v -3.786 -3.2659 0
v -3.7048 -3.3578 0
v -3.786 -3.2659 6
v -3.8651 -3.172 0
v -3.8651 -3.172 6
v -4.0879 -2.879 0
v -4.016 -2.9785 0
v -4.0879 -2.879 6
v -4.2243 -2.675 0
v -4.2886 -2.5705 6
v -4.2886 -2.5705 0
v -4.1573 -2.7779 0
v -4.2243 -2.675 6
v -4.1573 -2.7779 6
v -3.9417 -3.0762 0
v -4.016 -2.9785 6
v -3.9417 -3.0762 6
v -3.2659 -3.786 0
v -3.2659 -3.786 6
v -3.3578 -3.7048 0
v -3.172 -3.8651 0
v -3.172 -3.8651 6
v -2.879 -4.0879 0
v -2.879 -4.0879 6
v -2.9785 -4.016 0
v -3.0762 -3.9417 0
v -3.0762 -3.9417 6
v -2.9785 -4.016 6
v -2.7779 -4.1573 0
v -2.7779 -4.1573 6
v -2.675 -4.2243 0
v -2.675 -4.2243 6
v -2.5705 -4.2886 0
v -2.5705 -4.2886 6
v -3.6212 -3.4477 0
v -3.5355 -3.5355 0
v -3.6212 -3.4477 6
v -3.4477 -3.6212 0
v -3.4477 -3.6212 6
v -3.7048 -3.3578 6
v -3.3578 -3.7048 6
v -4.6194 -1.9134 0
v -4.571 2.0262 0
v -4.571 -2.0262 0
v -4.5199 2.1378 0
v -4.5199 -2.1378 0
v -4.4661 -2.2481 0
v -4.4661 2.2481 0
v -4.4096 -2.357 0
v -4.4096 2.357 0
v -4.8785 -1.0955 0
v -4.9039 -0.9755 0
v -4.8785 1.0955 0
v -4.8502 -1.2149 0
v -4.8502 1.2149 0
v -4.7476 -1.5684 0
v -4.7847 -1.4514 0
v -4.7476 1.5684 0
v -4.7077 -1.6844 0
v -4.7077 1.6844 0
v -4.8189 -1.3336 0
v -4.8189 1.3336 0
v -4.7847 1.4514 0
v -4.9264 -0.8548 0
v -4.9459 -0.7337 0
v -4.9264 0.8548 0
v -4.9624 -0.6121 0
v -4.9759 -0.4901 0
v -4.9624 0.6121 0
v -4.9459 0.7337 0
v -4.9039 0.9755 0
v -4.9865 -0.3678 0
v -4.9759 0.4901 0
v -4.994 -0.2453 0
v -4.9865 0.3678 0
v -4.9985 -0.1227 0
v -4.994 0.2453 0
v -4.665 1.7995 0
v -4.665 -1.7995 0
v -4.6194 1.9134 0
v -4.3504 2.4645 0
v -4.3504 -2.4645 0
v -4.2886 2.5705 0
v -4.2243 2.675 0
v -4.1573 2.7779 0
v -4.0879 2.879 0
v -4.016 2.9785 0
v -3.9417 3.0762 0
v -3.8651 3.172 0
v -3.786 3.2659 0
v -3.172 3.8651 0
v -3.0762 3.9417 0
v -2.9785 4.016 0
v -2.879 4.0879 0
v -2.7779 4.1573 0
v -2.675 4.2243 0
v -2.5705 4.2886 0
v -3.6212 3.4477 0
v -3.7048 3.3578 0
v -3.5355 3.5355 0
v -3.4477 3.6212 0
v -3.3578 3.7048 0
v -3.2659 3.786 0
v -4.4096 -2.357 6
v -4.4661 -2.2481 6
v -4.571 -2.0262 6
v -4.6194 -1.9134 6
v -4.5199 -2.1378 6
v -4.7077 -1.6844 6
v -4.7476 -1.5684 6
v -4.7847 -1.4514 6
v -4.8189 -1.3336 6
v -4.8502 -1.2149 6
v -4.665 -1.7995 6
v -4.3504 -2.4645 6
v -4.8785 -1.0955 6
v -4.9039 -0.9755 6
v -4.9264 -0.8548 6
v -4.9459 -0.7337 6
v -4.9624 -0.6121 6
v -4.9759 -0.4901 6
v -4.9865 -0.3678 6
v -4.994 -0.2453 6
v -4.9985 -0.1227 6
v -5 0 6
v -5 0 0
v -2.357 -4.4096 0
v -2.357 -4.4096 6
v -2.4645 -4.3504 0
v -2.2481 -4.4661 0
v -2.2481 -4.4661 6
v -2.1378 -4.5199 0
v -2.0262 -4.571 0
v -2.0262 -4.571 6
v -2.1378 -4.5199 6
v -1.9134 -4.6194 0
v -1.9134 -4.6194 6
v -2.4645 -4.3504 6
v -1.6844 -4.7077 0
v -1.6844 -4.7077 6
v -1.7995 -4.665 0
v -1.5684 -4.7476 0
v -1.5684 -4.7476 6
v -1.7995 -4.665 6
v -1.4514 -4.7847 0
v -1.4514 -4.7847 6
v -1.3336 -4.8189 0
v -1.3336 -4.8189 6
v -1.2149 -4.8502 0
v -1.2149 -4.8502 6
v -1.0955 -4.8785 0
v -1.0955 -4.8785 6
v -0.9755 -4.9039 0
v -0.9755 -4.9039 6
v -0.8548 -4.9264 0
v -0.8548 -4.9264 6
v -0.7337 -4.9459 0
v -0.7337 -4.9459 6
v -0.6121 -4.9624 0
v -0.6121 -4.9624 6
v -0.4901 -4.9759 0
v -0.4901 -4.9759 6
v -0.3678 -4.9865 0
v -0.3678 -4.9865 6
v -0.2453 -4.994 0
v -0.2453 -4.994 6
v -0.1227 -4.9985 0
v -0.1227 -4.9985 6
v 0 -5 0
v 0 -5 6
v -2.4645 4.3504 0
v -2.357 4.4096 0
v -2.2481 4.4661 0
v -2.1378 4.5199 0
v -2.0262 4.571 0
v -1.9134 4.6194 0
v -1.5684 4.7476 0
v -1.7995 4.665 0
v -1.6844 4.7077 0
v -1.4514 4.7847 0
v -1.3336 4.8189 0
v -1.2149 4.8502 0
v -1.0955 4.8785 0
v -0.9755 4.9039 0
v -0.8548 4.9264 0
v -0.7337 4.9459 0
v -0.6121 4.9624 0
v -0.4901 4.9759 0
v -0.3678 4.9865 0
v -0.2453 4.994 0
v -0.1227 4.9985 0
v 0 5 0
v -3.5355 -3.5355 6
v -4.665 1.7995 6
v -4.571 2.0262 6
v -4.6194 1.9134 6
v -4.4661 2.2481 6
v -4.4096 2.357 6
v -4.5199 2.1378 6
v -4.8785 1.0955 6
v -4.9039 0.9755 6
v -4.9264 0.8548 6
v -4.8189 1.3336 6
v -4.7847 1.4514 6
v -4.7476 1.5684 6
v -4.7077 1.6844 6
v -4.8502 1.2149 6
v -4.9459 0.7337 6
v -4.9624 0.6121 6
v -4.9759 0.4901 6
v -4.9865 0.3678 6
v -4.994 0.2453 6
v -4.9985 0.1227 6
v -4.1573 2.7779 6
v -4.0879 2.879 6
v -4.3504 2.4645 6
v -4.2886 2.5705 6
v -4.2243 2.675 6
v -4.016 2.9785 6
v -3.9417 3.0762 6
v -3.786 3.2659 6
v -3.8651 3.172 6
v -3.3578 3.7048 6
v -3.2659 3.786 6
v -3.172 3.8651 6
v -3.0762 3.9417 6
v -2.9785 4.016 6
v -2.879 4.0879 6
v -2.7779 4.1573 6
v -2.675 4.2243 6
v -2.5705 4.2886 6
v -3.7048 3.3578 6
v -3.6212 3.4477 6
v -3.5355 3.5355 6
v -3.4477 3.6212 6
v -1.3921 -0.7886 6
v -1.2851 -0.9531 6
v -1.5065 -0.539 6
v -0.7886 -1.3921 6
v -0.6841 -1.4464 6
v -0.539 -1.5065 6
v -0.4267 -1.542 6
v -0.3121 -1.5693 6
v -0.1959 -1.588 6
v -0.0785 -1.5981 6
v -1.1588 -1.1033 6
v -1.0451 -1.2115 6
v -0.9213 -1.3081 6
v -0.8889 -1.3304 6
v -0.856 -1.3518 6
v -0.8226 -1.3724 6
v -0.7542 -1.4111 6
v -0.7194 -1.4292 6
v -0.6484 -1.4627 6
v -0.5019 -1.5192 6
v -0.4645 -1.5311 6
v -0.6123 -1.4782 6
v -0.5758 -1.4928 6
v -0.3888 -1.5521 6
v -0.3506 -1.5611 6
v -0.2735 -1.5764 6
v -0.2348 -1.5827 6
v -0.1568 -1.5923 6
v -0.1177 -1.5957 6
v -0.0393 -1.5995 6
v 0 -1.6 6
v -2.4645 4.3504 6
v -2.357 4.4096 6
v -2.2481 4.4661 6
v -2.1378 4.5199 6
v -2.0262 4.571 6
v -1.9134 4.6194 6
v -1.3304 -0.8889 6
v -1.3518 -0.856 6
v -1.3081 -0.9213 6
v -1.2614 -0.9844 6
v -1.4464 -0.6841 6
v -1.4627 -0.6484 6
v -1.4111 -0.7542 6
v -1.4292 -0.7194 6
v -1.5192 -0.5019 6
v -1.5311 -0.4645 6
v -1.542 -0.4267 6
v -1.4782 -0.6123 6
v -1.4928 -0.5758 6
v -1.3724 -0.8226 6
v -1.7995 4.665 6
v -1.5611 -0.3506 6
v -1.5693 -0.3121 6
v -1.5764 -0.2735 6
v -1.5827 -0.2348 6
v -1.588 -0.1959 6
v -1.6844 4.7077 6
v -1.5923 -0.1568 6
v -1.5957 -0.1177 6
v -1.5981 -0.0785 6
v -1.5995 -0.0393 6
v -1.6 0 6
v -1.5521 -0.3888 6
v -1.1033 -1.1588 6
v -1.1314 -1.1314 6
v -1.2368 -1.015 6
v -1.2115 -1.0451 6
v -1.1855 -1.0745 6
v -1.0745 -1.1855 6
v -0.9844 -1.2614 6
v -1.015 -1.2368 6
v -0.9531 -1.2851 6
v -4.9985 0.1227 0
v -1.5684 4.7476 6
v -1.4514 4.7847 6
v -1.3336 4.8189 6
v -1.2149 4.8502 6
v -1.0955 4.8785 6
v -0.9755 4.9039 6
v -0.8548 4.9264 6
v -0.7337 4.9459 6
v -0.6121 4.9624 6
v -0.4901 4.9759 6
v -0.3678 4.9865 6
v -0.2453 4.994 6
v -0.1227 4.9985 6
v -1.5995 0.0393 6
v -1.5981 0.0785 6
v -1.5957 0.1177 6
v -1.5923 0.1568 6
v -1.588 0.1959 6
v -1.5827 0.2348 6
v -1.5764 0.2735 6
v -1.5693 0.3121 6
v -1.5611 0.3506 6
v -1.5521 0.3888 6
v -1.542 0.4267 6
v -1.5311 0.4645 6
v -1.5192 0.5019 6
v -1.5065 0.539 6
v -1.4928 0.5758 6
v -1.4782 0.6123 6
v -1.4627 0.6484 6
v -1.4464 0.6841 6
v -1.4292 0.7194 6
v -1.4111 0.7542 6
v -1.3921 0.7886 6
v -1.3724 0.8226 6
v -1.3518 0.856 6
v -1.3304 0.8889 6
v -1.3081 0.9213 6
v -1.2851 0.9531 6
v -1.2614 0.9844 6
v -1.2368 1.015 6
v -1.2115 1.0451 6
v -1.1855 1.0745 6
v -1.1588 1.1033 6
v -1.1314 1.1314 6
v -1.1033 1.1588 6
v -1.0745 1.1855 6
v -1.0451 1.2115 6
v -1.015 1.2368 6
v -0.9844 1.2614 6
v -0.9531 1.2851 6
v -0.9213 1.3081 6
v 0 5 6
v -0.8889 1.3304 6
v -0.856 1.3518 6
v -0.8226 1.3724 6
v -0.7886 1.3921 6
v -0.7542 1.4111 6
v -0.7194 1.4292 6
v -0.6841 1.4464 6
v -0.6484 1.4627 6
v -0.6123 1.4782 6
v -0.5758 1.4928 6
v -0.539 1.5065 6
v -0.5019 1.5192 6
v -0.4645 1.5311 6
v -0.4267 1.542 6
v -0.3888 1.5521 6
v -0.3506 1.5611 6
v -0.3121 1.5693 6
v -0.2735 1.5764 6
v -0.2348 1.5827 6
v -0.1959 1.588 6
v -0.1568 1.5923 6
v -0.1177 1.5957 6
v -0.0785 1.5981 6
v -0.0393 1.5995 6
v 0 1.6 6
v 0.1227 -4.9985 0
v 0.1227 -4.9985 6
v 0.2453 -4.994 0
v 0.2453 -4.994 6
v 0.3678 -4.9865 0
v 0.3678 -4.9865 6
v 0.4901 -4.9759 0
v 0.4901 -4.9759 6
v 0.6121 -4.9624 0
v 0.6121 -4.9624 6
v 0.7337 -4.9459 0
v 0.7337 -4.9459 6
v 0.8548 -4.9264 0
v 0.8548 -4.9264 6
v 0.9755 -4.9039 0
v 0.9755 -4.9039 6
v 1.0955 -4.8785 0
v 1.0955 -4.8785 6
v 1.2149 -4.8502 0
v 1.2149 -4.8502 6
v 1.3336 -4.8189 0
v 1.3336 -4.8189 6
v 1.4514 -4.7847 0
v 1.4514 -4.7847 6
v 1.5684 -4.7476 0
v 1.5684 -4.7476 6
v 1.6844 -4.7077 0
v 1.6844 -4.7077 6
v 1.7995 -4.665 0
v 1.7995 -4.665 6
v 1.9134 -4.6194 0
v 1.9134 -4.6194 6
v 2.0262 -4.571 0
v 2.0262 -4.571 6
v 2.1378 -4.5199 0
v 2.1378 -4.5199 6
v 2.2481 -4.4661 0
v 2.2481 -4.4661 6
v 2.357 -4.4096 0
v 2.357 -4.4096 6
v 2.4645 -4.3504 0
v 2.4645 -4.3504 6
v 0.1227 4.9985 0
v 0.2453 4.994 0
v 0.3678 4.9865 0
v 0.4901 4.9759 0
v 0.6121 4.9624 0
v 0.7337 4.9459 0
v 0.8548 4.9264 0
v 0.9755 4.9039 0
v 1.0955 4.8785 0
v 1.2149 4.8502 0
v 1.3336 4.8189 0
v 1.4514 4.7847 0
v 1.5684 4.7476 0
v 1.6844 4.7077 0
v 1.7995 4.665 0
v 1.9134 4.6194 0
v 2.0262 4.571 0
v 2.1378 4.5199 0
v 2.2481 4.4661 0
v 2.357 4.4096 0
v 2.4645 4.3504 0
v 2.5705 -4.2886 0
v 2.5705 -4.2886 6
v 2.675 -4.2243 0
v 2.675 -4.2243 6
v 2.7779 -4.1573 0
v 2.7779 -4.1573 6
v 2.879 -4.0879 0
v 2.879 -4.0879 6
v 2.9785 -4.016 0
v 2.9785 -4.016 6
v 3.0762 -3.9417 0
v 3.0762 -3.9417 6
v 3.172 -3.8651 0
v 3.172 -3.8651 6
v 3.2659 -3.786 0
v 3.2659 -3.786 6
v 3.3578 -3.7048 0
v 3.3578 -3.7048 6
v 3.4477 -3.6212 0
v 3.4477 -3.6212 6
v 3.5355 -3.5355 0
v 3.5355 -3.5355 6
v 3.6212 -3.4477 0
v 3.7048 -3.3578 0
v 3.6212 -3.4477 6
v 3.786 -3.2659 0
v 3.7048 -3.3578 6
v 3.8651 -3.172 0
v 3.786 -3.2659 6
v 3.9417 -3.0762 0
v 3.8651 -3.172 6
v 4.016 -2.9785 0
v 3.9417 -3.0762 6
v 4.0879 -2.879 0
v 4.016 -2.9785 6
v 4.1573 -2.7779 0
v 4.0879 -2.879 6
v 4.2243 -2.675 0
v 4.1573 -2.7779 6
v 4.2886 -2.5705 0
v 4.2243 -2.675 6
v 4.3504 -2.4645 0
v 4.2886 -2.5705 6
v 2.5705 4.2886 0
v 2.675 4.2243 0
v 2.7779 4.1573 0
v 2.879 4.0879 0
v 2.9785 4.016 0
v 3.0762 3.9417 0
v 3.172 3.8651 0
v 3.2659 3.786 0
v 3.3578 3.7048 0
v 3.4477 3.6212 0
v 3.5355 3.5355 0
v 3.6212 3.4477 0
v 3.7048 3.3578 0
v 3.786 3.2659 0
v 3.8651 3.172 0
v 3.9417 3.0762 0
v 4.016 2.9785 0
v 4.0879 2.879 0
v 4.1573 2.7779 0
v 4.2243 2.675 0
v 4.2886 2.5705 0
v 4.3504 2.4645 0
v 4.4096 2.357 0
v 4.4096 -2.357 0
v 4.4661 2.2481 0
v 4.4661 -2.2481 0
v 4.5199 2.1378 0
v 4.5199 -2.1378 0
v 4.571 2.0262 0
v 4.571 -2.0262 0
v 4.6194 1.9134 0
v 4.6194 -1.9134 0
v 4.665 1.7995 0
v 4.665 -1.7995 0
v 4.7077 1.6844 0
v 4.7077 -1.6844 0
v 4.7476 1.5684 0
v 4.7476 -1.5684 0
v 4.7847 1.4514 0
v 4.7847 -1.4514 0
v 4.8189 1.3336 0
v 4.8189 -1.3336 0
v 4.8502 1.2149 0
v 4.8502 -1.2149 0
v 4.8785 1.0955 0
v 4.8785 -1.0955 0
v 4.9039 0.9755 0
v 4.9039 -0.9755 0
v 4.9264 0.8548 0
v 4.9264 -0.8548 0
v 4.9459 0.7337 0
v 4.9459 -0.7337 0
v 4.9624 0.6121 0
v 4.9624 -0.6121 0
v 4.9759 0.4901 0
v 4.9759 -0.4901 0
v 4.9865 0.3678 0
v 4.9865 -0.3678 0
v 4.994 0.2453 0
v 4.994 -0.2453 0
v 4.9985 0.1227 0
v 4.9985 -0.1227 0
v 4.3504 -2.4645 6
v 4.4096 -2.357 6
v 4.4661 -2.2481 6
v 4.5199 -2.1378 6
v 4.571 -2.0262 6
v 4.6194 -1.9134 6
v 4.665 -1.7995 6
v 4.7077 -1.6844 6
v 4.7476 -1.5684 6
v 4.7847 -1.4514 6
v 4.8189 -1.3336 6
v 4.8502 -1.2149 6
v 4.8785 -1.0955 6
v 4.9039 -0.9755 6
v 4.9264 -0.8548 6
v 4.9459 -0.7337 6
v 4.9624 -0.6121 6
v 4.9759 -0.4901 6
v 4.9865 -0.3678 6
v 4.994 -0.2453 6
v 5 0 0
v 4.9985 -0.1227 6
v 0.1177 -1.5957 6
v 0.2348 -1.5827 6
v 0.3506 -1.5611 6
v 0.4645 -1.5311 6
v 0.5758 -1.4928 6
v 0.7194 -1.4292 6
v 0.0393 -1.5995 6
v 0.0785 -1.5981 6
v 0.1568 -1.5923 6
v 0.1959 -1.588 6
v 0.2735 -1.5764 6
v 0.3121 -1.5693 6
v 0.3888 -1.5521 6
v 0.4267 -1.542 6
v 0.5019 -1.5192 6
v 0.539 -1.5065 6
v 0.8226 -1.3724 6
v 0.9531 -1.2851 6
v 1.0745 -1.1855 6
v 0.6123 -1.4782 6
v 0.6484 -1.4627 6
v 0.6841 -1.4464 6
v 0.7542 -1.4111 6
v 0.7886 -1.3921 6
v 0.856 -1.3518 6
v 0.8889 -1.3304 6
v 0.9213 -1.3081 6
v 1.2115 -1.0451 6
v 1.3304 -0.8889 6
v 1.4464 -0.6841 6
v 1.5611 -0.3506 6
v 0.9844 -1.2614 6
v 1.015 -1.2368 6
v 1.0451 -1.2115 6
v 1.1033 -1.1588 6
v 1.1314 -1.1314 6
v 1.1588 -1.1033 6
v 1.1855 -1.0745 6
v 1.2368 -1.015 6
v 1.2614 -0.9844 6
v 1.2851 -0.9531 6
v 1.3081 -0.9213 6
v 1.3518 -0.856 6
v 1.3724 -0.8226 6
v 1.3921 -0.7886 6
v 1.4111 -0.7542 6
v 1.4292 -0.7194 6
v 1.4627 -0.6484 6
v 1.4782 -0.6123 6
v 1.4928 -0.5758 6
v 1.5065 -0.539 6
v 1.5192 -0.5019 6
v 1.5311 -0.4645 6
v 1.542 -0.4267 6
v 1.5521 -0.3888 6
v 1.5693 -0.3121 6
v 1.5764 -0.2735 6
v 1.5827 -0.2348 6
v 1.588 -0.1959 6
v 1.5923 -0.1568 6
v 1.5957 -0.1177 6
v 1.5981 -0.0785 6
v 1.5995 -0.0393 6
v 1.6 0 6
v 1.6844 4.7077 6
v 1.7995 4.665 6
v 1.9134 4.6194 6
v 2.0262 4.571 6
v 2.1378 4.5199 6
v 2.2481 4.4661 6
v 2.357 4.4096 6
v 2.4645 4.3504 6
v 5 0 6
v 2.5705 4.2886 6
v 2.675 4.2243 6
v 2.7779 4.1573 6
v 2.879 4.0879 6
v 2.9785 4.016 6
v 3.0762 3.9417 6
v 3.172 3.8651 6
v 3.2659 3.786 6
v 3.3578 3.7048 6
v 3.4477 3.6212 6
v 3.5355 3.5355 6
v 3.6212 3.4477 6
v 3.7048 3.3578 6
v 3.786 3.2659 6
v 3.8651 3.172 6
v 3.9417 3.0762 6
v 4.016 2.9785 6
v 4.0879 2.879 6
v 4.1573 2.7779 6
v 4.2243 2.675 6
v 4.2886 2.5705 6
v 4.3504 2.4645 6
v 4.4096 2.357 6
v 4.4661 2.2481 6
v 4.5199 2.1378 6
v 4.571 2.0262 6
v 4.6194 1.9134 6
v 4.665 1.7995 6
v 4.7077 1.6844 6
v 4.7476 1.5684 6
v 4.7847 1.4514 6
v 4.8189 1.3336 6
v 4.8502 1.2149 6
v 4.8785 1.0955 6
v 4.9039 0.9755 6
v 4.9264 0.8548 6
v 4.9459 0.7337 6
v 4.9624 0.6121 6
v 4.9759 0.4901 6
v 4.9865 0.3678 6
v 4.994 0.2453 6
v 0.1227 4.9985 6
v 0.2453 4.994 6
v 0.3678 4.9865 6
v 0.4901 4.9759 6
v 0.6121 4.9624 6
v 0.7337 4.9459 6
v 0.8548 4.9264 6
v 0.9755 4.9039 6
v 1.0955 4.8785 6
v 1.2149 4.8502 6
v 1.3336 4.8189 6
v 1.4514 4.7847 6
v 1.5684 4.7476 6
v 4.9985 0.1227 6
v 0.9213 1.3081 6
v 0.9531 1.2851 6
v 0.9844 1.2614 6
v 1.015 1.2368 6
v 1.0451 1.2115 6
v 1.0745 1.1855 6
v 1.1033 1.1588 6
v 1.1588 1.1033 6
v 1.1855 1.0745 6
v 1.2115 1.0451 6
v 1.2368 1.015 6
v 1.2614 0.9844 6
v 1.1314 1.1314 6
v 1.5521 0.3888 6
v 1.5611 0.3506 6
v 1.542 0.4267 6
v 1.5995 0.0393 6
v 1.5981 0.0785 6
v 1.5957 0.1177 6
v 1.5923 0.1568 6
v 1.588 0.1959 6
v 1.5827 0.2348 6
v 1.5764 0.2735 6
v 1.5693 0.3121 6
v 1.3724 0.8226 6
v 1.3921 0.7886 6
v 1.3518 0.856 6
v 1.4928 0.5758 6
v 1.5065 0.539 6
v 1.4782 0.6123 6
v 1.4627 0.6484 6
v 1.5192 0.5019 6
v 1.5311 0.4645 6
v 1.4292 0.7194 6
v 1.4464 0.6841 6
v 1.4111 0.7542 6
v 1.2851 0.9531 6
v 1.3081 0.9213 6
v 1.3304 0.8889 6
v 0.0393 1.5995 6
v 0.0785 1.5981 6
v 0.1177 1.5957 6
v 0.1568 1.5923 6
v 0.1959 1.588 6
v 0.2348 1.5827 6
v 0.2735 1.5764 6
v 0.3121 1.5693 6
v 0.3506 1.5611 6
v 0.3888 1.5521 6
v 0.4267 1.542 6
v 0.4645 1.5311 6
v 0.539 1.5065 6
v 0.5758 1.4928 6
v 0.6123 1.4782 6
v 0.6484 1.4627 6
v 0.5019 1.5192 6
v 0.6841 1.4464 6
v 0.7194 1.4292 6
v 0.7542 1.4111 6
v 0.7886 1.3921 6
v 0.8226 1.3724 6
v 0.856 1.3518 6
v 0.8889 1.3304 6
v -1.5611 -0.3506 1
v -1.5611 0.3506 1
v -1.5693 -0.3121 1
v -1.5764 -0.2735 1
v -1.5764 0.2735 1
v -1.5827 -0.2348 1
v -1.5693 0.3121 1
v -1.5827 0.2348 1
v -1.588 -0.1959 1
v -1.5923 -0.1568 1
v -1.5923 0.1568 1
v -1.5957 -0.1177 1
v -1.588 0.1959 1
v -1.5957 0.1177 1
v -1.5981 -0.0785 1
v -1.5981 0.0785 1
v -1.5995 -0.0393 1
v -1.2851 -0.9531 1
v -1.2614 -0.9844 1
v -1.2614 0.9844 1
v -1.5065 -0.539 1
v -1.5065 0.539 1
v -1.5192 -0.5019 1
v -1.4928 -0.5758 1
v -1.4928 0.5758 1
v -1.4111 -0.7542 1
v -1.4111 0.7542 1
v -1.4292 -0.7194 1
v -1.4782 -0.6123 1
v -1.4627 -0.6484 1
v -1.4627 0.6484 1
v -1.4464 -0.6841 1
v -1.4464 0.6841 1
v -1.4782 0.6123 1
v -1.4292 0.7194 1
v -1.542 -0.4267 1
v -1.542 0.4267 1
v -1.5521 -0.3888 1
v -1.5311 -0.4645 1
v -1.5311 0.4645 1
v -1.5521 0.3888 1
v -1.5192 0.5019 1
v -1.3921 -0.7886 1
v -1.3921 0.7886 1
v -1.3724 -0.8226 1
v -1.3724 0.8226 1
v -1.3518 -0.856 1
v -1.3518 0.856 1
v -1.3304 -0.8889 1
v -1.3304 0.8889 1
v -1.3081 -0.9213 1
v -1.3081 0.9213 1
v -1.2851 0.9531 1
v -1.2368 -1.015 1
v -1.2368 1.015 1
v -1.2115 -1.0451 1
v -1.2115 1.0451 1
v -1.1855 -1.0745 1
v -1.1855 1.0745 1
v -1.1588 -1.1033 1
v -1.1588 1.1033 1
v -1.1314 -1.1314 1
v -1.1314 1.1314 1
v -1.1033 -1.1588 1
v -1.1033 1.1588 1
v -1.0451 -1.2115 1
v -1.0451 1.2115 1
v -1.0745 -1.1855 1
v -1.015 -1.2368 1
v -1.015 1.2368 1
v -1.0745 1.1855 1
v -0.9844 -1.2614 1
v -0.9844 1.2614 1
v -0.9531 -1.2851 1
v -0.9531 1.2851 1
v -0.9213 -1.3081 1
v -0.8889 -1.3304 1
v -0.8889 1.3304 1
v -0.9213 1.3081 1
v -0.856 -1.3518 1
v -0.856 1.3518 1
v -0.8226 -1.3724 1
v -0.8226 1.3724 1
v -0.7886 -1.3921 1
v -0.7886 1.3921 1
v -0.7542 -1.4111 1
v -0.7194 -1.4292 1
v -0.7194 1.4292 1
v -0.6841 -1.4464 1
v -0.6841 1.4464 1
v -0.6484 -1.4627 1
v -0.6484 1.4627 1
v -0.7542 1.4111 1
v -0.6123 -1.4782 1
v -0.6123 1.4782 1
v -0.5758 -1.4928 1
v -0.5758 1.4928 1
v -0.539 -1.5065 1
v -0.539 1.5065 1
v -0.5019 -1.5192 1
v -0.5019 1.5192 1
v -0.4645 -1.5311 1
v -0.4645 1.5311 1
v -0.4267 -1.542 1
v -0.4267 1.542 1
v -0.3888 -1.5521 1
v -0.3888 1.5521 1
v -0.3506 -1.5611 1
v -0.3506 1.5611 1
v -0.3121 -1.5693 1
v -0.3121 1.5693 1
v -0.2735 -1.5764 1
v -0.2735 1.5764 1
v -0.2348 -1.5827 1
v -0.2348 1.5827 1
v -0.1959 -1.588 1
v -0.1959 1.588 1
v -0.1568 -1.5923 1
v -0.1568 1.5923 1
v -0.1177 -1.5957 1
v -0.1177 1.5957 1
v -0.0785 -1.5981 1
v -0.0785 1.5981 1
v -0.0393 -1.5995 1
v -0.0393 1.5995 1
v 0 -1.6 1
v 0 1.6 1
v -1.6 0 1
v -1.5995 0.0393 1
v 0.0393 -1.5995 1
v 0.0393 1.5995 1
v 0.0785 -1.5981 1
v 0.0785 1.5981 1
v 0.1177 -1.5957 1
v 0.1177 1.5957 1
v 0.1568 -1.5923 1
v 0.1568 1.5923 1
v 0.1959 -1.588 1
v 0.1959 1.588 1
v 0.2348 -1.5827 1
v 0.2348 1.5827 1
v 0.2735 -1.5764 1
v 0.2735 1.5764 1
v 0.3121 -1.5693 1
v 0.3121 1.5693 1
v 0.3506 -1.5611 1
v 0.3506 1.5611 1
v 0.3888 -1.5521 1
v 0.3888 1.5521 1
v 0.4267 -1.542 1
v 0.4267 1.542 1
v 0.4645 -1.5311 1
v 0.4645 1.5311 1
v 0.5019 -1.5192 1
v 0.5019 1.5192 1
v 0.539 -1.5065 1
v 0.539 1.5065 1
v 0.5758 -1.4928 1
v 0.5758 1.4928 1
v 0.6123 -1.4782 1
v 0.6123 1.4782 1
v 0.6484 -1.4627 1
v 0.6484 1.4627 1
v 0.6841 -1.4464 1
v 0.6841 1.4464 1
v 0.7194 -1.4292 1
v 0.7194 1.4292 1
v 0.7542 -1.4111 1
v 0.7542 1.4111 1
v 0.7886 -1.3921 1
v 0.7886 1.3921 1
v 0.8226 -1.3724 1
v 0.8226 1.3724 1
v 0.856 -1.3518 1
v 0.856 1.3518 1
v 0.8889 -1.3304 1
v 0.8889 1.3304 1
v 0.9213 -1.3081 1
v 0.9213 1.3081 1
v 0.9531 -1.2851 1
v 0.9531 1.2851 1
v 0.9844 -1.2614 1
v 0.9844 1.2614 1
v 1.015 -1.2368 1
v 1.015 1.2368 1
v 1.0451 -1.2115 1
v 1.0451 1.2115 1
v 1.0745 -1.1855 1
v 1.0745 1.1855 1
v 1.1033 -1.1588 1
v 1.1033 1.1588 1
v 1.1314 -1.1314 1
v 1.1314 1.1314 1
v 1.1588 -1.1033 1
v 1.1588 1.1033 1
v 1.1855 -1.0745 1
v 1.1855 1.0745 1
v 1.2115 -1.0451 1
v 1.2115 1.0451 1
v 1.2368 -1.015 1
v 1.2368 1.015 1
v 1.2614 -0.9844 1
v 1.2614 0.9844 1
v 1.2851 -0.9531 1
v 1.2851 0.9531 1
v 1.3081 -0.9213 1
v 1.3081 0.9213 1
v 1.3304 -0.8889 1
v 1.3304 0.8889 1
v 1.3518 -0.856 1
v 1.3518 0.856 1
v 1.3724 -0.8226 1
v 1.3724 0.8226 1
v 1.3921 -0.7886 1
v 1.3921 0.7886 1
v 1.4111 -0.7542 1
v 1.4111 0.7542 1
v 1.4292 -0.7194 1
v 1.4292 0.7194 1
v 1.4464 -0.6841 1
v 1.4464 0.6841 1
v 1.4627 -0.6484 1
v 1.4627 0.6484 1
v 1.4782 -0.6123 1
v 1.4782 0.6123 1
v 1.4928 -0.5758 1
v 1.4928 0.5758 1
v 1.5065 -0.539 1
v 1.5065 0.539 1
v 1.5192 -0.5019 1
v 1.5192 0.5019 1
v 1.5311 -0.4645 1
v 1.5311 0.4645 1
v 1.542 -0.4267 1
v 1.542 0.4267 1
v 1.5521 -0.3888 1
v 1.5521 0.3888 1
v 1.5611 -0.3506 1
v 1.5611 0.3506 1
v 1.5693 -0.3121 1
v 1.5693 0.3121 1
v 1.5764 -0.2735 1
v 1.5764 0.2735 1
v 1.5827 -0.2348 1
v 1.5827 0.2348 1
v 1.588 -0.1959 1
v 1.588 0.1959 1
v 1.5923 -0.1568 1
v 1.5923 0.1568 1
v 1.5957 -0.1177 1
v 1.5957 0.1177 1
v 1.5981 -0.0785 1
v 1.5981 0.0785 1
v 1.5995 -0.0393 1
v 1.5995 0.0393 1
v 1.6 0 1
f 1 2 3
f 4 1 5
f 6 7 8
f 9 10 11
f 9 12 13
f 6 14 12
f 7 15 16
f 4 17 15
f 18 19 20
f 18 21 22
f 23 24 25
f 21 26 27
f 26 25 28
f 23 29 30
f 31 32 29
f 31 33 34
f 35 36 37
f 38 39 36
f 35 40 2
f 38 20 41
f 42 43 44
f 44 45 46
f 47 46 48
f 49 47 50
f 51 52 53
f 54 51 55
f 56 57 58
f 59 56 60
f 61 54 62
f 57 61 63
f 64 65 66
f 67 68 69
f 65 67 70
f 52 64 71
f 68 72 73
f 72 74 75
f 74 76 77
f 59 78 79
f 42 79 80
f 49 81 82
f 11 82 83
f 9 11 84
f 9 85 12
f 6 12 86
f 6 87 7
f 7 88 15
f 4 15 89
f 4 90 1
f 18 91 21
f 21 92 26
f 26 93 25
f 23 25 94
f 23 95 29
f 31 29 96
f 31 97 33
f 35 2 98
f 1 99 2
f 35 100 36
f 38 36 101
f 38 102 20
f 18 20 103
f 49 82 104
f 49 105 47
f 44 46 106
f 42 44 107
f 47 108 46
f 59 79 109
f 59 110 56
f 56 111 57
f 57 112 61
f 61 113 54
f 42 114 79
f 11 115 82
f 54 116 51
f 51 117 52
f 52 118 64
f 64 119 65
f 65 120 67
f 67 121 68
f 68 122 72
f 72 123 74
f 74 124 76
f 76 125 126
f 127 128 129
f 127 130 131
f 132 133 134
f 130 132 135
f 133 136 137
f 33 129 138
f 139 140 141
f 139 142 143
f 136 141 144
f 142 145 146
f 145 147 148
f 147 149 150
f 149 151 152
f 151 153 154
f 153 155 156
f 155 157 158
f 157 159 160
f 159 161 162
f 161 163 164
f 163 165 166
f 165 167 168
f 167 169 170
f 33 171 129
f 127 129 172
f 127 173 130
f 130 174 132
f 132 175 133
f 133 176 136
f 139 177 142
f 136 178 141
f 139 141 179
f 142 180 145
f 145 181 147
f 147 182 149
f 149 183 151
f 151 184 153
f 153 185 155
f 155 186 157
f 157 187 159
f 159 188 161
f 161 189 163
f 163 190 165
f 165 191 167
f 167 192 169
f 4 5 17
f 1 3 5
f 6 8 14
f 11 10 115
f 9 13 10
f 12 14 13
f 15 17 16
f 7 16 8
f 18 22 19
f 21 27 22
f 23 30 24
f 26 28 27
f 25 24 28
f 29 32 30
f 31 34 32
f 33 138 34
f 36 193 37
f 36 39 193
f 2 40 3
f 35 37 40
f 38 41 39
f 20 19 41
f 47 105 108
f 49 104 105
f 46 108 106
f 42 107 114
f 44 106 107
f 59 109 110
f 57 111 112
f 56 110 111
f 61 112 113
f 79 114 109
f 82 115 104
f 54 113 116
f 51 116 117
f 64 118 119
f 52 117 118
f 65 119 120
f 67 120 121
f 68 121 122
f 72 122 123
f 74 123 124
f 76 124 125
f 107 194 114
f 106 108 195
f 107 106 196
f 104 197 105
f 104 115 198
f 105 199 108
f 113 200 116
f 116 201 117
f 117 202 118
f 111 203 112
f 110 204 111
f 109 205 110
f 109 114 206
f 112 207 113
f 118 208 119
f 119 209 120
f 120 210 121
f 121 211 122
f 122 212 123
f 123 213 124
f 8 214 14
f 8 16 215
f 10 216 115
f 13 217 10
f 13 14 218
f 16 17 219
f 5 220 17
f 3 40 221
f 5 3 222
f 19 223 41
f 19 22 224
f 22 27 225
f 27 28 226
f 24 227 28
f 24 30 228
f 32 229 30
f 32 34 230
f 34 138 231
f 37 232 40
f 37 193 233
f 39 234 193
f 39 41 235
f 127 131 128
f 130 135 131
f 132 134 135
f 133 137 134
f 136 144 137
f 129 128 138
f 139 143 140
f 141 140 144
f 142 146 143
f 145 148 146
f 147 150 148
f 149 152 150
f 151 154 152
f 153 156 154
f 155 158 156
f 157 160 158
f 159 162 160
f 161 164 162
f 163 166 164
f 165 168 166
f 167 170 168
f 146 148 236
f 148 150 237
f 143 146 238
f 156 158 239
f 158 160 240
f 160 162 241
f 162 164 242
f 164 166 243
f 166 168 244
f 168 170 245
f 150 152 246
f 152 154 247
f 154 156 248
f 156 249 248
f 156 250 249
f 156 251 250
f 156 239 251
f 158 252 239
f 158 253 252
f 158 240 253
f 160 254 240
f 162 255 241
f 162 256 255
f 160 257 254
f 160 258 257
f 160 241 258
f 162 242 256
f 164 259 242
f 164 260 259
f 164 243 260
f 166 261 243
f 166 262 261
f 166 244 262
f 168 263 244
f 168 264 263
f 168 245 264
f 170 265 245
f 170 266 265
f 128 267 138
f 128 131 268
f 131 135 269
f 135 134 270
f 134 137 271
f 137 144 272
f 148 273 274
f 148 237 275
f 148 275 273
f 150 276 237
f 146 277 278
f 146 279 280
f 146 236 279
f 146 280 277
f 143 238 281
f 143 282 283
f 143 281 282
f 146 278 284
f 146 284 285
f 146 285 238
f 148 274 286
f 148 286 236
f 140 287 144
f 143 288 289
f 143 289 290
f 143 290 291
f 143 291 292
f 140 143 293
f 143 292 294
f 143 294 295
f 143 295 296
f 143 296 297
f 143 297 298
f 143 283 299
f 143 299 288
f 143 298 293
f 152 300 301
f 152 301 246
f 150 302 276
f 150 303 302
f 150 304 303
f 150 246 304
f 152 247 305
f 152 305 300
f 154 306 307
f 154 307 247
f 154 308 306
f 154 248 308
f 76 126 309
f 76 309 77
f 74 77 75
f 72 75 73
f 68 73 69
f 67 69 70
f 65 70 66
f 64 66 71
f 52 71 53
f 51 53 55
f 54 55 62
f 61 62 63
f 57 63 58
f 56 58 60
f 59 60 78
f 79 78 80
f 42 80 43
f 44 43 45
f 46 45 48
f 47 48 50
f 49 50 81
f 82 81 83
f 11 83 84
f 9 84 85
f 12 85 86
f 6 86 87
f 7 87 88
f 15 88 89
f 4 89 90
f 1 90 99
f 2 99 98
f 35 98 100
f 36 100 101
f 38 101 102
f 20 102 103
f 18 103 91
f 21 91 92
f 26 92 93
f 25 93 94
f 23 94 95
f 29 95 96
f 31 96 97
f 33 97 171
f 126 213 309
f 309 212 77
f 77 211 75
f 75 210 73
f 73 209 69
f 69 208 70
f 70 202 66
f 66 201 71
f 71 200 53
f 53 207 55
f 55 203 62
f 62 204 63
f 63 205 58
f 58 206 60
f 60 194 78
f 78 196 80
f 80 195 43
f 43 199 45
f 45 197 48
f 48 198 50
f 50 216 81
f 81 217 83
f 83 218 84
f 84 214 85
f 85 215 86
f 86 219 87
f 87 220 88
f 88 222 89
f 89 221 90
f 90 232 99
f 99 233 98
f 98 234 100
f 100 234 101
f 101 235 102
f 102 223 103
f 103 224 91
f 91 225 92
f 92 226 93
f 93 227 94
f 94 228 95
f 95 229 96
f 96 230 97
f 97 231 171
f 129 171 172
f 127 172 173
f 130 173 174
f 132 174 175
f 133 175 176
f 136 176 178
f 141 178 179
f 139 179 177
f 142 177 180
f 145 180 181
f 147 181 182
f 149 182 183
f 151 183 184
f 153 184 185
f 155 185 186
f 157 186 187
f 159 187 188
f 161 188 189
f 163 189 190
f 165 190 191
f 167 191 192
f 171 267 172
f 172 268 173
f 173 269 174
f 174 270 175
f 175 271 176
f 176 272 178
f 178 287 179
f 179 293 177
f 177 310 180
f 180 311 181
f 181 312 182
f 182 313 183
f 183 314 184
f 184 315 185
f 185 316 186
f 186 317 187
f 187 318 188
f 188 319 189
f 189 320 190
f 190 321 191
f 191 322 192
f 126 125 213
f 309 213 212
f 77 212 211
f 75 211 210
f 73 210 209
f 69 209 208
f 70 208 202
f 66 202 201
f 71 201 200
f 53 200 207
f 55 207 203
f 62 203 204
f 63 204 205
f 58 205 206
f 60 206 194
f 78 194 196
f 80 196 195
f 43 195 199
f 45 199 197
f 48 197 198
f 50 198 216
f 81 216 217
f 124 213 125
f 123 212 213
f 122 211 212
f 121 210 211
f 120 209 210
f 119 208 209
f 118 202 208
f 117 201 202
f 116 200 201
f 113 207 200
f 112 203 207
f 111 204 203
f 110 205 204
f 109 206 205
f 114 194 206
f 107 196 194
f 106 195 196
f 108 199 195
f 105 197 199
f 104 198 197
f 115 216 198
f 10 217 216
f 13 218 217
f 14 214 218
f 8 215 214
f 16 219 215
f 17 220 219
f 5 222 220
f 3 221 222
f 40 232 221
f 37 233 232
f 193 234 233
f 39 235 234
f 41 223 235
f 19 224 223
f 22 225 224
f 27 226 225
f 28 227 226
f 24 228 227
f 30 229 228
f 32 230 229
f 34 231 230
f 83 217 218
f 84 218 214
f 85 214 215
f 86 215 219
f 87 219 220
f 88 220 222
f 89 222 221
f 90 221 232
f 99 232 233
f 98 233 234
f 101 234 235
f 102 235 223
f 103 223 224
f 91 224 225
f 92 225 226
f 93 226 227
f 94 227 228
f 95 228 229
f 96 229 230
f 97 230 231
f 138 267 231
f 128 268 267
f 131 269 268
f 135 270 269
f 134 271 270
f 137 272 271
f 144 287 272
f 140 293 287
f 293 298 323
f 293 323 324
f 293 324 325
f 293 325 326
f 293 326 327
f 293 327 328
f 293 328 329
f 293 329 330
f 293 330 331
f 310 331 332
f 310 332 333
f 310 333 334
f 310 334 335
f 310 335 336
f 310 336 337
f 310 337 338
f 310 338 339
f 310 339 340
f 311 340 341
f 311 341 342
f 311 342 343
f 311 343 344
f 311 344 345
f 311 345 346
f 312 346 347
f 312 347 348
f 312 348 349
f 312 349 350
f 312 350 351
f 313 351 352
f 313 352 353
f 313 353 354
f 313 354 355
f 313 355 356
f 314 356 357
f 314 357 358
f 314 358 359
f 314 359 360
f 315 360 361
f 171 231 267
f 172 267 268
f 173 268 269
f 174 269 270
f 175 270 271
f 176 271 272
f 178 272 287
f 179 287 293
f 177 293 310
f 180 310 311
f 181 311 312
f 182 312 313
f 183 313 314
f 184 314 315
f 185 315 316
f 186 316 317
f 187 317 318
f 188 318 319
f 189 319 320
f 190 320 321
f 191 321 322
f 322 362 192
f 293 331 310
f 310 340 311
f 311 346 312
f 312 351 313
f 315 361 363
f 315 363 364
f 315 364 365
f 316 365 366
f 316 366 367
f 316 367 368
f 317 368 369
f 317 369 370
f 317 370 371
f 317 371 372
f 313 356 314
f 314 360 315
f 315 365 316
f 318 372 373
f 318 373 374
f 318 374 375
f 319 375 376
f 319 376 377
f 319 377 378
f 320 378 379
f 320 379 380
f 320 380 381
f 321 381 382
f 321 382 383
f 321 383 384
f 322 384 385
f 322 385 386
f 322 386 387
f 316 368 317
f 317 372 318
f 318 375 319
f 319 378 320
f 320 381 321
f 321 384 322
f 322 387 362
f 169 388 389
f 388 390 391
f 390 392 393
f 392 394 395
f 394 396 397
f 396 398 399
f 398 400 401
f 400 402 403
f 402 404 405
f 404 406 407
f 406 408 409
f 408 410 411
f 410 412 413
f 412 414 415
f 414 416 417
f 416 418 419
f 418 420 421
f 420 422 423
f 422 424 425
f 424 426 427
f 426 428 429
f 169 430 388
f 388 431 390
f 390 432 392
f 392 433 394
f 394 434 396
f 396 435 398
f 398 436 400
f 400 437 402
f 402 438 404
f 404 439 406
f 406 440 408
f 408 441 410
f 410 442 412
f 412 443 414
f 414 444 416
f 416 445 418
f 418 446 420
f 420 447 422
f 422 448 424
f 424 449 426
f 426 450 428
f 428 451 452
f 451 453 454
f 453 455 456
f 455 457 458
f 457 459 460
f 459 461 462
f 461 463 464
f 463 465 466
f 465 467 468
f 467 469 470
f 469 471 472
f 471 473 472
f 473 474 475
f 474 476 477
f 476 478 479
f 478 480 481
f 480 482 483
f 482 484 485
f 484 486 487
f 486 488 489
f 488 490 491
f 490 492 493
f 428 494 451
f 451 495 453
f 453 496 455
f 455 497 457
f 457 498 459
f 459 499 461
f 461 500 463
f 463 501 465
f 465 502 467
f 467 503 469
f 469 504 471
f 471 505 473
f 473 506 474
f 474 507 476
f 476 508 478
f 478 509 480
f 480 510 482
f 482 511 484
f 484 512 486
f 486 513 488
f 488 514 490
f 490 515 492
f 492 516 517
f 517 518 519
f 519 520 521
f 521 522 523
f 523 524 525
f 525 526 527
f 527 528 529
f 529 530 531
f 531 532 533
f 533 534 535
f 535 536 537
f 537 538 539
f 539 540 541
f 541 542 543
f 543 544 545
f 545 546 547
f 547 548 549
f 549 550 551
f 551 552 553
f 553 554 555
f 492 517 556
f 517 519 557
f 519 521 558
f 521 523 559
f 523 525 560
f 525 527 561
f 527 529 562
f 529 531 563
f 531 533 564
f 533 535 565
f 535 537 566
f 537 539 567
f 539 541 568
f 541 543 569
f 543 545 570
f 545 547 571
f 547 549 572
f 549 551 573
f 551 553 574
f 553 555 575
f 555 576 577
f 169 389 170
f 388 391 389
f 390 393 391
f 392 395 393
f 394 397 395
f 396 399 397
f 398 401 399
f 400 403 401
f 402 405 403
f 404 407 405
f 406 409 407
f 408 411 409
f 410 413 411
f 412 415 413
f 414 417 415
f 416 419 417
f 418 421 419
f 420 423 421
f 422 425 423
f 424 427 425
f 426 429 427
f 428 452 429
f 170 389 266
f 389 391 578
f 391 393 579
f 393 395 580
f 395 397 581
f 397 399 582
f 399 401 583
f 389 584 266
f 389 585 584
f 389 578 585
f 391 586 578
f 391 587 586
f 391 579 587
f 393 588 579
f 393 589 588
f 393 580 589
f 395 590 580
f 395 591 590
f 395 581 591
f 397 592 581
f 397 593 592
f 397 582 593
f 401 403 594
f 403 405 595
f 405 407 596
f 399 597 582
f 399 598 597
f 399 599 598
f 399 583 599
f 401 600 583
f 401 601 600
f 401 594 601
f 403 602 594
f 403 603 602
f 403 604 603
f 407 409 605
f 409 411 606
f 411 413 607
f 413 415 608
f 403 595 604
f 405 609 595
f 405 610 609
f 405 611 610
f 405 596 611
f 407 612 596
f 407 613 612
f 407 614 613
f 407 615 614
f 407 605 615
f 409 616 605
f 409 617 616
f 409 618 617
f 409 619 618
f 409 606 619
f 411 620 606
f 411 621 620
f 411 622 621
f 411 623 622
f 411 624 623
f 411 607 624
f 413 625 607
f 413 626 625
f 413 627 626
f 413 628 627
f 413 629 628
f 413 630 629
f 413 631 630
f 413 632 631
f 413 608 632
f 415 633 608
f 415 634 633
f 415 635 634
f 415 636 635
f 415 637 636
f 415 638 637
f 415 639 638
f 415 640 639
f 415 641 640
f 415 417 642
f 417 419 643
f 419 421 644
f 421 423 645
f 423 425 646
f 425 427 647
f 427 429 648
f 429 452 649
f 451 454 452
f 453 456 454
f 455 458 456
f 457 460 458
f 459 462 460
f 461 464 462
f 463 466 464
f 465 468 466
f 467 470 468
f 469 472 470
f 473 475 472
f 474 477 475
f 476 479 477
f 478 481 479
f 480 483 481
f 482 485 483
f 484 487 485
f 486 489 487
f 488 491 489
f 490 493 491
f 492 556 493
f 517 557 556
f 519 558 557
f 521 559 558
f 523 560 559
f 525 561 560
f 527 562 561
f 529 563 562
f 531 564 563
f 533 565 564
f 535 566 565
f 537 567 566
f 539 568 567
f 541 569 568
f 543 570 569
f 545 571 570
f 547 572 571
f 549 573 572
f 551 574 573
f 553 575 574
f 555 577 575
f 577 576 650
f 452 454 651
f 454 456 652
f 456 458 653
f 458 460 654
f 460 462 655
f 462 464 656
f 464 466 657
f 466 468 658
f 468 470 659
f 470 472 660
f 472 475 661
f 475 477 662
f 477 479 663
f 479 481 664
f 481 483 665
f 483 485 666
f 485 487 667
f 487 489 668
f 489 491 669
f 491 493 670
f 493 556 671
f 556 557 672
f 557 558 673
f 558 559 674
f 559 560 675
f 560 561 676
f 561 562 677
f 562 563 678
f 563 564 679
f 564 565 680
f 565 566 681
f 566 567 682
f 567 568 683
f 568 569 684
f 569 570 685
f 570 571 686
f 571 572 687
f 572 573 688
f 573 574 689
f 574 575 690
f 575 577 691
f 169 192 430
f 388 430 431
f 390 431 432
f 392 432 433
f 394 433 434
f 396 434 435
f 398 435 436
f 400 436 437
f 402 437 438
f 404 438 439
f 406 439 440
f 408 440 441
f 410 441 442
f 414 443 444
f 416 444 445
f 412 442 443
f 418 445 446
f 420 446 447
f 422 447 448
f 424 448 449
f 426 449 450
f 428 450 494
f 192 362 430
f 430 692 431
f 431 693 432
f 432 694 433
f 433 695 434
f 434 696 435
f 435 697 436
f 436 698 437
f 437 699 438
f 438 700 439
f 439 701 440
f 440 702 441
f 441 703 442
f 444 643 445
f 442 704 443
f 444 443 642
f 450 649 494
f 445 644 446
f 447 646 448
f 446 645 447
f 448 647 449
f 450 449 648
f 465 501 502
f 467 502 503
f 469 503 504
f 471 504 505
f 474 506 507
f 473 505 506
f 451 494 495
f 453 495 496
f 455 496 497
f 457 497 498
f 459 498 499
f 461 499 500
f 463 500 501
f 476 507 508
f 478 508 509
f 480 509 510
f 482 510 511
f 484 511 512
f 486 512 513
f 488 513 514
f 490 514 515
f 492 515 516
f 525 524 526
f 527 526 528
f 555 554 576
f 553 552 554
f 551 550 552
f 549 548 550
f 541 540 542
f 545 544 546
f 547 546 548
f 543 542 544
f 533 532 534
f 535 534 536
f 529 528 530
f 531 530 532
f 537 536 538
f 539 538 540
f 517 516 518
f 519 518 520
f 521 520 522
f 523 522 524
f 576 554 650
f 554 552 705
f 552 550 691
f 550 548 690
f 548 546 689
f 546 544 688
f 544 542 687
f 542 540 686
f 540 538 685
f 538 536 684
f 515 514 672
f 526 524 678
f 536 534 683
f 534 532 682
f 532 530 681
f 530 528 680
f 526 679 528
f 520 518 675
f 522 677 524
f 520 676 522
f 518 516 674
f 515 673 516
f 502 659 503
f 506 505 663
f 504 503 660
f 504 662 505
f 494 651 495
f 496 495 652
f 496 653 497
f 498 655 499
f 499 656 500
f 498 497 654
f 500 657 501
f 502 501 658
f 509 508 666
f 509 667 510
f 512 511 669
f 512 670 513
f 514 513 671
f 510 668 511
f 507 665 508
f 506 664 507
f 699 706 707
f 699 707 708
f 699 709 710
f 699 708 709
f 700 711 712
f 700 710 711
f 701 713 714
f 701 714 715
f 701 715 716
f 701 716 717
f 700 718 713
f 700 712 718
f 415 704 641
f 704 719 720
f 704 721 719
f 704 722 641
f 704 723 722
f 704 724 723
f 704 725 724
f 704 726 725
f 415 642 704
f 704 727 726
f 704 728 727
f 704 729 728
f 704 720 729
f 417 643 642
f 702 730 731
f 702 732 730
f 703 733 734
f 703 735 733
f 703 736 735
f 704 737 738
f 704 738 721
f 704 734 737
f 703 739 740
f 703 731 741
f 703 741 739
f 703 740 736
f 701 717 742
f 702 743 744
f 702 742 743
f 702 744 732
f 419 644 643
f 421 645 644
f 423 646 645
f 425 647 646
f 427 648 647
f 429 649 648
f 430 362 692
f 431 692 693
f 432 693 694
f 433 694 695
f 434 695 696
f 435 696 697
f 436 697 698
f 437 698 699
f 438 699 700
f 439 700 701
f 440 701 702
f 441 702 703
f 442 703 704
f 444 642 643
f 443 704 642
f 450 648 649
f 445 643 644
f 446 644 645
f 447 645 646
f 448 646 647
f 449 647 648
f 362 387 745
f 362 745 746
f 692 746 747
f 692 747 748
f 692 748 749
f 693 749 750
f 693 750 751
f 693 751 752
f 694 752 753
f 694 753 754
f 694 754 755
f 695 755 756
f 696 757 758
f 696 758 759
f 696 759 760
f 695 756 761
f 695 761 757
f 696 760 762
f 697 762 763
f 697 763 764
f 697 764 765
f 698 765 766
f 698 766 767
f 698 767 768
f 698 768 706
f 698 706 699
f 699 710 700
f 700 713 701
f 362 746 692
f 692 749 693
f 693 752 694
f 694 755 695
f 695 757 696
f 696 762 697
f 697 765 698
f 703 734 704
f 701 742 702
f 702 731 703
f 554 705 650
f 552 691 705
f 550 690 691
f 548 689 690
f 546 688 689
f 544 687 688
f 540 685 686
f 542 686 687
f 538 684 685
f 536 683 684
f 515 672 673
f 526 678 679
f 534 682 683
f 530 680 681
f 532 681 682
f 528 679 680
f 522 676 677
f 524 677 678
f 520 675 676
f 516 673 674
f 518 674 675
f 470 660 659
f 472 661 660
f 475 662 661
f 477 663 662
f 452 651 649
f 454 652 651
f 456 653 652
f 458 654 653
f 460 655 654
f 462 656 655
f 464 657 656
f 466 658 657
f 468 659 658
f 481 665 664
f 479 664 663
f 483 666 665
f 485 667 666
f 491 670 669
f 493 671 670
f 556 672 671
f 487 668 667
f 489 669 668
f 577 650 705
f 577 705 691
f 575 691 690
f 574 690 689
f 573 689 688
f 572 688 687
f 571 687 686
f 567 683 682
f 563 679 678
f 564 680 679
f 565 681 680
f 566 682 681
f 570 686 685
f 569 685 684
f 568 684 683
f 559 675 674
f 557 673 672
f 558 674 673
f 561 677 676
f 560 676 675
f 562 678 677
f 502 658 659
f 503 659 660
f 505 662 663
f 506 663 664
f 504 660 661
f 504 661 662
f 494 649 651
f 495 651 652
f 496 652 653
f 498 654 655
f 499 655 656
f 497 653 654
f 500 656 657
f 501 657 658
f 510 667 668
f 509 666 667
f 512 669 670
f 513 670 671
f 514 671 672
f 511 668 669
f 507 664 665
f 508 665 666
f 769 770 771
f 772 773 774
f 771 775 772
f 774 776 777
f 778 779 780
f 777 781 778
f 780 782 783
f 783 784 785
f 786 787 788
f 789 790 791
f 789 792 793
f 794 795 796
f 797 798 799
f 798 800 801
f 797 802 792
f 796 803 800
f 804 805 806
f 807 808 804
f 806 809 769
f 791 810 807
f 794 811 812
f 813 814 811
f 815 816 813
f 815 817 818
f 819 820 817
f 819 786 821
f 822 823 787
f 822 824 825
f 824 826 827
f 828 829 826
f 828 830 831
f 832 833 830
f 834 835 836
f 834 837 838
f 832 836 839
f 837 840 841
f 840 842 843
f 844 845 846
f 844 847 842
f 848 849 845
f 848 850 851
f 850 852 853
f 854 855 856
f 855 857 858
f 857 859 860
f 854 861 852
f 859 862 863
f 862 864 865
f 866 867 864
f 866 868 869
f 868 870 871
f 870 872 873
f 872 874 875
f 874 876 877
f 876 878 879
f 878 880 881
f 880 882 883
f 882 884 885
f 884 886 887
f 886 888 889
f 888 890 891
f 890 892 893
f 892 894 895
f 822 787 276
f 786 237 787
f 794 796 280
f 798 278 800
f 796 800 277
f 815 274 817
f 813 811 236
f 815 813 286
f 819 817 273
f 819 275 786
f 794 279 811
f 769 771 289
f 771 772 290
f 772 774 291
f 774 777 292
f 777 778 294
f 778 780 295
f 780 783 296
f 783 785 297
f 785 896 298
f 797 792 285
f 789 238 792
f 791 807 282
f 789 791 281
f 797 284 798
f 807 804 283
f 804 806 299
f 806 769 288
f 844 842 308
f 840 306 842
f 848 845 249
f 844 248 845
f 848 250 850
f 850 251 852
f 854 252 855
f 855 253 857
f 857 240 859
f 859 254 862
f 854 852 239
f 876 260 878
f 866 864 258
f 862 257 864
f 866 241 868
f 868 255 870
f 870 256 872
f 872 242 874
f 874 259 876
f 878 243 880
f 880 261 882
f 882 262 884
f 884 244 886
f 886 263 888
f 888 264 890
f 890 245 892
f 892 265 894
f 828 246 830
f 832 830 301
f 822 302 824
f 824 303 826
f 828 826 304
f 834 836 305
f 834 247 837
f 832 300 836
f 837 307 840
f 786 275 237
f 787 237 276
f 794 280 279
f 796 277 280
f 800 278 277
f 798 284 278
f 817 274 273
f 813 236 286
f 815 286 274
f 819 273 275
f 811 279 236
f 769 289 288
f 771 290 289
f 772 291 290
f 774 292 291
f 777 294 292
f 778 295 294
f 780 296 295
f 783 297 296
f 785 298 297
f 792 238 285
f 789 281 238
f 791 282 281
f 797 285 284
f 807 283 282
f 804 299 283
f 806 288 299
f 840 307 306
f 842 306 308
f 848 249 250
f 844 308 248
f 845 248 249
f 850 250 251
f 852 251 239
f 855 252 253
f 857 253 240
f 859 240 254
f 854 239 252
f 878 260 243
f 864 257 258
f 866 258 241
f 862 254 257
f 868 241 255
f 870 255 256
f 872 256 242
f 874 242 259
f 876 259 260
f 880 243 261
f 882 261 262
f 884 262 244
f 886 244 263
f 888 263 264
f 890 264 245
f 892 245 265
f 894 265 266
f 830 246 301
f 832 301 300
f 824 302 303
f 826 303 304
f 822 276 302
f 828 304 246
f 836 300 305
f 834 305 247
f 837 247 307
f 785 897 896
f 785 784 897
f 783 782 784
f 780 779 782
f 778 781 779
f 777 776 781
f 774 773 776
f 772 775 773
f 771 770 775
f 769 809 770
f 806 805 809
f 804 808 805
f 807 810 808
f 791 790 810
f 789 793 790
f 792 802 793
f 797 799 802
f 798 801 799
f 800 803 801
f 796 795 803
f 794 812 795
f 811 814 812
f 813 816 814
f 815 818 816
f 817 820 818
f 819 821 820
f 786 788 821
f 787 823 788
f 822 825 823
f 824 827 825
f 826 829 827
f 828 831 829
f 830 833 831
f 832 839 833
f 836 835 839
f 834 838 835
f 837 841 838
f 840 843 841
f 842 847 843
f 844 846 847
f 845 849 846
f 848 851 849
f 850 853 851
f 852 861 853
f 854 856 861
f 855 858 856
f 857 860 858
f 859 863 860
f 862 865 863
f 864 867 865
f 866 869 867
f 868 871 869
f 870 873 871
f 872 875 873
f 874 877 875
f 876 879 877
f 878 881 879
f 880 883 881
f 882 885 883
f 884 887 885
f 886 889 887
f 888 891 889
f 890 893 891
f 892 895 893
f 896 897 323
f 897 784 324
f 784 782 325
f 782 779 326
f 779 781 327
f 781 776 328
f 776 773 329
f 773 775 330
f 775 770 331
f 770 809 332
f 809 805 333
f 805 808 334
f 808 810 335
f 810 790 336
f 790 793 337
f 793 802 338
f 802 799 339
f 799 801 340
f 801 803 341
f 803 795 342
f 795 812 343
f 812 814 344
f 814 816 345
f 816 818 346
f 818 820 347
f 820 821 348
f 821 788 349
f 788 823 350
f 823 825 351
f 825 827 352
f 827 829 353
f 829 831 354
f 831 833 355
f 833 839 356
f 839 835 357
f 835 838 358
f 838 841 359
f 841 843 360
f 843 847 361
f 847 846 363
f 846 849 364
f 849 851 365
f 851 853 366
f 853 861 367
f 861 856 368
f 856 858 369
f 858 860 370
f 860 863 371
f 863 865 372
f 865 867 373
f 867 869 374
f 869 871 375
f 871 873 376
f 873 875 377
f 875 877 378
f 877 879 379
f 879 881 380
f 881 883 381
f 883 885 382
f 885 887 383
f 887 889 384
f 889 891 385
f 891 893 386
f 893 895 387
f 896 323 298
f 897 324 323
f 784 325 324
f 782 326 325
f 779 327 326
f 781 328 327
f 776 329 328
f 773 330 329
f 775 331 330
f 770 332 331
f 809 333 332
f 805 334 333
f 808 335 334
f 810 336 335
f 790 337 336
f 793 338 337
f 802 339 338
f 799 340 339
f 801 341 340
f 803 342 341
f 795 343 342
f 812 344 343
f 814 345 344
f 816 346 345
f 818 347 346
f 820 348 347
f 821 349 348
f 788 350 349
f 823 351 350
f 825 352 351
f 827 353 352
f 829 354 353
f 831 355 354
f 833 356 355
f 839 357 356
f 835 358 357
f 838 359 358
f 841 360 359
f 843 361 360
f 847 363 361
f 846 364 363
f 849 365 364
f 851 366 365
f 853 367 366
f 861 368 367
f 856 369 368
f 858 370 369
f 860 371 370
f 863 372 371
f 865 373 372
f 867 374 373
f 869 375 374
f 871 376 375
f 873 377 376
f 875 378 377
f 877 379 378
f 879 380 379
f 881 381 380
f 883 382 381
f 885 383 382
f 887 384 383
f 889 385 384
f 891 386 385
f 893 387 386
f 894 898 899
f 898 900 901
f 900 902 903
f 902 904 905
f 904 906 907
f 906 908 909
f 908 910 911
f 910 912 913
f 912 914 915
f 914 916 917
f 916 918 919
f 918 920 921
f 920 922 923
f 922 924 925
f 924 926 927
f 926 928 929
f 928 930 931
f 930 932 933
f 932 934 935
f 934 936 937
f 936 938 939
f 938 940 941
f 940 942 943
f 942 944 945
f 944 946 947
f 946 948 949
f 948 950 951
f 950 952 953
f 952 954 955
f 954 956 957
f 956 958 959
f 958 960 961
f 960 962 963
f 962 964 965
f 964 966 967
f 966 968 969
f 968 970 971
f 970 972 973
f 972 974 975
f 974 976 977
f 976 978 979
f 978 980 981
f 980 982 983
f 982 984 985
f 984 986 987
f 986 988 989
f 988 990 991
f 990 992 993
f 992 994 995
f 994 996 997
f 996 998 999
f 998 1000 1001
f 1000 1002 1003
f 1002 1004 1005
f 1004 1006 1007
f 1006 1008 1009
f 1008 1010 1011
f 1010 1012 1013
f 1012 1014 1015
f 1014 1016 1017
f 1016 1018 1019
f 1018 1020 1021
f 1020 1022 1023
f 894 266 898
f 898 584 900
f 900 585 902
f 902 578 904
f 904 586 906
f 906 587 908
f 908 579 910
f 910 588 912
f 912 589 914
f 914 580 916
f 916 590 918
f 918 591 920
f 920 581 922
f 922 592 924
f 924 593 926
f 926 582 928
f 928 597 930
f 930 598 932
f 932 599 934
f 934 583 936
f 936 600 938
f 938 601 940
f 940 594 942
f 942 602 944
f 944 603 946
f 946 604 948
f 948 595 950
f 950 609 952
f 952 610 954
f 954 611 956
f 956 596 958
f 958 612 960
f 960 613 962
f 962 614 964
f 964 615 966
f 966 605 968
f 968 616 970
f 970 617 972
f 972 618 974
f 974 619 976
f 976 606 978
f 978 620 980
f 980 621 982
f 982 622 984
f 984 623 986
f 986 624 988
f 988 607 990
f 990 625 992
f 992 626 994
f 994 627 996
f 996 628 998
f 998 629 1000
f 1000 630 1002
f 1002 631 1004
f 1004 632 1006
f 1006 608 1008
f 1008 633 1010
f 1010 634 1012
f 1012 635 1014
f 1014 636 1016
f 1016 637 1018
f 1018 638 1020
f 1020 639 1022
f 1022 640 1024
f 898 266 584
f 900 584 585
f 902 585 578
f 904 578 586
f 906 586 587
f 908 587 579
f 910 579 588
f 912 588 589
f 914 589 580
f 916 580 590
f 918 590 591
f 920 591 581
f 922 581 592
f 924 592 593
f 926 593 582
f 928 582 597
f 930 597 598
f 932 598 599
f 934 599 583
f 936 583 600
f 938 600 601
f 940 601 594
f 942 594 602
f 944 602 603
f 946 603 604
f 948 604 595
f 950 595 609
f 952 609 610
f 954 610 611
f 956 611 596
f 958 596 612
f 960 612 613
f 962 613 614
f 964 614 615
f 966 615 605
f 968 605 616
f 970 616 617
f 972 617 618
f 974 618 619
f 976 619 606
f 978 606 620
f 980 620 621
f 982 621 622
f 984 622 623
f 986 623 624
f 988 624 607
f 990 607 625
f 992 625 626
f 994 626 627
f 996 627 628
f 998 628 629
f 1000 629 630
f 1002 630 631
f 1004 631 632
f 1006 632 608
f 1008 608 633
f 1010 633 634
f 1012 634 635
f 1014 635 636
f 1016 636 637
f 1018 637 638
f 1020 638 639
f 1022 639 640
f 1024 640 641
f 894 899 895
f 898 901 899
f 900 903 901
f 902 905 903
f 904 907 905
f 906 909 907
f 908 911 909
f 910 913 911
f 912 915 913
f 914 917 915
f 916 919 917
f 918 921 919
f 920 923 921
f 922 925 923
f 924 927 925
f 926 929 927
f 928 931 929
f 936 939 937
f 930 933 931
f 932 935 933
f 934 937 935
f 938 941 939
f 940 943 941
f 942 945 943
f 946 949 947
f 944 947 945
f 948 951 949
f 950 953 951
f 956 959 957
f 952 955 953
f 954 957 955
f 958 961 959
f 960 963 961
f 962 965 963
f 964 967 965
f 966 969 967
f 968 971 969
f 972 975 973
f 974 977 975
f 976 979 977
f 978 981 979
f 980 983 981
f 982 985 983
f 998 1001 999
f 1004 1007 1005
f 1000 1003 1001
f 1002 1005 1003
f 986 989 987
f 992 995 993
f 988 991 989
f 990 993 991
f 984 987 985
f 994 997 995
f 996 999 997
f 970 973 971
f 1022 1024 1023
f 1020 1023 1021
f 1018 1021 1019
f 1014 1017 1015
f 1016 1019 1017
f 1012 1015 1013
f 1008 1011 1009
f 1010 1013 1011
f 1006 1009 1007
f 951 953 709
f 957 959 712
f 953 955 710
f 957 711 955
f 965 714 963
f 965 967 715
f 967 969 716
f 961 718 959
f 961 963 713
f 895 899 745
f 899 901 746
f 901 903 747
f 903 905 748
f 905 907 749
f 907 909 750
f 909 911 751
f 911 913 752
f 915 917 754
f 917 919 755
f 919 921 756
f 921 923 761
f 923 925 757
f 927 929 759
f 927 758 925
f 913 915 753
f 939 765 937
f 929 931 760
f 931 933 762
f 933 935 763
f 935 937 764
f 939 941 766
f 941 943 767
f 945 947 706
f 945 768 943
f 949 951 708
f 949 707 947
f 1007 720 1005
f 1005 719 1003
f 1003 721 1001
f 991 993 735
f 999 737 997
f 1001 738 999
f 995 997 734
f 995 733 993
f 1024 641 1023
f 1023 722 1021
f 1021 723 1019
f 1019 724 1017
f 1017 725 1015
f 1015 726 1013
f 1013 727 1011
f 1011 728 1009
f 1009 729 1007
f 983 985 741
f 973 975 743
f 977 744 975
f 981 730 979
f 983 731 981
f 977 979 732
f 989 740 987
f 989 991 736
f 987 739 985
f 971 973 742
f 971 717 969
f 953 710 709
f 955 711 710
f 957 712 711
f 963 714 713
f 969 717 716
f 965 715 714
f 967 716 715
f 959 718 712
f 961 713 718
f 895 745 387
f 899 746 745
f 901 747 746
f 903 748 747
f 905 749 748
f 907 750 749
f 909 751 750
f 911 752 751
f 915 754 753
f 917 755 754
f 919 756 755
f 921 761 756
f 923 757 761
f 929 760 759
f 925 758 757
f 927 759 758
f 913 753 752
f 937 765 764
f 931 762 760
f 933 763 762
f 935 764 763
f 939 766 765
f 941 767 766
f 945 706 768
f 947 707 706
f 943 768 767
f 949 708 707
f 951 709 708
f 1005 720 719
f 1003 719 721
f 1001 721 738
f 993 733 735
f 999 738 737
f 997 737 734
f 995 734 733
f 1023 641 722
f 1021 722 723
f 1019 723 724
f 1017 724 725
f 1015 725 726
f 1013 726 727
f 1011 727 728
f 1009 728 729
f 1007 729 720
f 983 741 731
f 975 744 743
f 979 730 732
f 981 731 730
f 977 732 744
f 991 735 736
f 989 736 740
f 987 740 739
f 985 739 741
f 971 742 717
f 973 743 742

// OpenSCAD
$fn = 256;

difference() {
  cylinder(d=10, h=6);
  translate([0, 0, 1]) cylinder(d=3.2, h=6);
}
